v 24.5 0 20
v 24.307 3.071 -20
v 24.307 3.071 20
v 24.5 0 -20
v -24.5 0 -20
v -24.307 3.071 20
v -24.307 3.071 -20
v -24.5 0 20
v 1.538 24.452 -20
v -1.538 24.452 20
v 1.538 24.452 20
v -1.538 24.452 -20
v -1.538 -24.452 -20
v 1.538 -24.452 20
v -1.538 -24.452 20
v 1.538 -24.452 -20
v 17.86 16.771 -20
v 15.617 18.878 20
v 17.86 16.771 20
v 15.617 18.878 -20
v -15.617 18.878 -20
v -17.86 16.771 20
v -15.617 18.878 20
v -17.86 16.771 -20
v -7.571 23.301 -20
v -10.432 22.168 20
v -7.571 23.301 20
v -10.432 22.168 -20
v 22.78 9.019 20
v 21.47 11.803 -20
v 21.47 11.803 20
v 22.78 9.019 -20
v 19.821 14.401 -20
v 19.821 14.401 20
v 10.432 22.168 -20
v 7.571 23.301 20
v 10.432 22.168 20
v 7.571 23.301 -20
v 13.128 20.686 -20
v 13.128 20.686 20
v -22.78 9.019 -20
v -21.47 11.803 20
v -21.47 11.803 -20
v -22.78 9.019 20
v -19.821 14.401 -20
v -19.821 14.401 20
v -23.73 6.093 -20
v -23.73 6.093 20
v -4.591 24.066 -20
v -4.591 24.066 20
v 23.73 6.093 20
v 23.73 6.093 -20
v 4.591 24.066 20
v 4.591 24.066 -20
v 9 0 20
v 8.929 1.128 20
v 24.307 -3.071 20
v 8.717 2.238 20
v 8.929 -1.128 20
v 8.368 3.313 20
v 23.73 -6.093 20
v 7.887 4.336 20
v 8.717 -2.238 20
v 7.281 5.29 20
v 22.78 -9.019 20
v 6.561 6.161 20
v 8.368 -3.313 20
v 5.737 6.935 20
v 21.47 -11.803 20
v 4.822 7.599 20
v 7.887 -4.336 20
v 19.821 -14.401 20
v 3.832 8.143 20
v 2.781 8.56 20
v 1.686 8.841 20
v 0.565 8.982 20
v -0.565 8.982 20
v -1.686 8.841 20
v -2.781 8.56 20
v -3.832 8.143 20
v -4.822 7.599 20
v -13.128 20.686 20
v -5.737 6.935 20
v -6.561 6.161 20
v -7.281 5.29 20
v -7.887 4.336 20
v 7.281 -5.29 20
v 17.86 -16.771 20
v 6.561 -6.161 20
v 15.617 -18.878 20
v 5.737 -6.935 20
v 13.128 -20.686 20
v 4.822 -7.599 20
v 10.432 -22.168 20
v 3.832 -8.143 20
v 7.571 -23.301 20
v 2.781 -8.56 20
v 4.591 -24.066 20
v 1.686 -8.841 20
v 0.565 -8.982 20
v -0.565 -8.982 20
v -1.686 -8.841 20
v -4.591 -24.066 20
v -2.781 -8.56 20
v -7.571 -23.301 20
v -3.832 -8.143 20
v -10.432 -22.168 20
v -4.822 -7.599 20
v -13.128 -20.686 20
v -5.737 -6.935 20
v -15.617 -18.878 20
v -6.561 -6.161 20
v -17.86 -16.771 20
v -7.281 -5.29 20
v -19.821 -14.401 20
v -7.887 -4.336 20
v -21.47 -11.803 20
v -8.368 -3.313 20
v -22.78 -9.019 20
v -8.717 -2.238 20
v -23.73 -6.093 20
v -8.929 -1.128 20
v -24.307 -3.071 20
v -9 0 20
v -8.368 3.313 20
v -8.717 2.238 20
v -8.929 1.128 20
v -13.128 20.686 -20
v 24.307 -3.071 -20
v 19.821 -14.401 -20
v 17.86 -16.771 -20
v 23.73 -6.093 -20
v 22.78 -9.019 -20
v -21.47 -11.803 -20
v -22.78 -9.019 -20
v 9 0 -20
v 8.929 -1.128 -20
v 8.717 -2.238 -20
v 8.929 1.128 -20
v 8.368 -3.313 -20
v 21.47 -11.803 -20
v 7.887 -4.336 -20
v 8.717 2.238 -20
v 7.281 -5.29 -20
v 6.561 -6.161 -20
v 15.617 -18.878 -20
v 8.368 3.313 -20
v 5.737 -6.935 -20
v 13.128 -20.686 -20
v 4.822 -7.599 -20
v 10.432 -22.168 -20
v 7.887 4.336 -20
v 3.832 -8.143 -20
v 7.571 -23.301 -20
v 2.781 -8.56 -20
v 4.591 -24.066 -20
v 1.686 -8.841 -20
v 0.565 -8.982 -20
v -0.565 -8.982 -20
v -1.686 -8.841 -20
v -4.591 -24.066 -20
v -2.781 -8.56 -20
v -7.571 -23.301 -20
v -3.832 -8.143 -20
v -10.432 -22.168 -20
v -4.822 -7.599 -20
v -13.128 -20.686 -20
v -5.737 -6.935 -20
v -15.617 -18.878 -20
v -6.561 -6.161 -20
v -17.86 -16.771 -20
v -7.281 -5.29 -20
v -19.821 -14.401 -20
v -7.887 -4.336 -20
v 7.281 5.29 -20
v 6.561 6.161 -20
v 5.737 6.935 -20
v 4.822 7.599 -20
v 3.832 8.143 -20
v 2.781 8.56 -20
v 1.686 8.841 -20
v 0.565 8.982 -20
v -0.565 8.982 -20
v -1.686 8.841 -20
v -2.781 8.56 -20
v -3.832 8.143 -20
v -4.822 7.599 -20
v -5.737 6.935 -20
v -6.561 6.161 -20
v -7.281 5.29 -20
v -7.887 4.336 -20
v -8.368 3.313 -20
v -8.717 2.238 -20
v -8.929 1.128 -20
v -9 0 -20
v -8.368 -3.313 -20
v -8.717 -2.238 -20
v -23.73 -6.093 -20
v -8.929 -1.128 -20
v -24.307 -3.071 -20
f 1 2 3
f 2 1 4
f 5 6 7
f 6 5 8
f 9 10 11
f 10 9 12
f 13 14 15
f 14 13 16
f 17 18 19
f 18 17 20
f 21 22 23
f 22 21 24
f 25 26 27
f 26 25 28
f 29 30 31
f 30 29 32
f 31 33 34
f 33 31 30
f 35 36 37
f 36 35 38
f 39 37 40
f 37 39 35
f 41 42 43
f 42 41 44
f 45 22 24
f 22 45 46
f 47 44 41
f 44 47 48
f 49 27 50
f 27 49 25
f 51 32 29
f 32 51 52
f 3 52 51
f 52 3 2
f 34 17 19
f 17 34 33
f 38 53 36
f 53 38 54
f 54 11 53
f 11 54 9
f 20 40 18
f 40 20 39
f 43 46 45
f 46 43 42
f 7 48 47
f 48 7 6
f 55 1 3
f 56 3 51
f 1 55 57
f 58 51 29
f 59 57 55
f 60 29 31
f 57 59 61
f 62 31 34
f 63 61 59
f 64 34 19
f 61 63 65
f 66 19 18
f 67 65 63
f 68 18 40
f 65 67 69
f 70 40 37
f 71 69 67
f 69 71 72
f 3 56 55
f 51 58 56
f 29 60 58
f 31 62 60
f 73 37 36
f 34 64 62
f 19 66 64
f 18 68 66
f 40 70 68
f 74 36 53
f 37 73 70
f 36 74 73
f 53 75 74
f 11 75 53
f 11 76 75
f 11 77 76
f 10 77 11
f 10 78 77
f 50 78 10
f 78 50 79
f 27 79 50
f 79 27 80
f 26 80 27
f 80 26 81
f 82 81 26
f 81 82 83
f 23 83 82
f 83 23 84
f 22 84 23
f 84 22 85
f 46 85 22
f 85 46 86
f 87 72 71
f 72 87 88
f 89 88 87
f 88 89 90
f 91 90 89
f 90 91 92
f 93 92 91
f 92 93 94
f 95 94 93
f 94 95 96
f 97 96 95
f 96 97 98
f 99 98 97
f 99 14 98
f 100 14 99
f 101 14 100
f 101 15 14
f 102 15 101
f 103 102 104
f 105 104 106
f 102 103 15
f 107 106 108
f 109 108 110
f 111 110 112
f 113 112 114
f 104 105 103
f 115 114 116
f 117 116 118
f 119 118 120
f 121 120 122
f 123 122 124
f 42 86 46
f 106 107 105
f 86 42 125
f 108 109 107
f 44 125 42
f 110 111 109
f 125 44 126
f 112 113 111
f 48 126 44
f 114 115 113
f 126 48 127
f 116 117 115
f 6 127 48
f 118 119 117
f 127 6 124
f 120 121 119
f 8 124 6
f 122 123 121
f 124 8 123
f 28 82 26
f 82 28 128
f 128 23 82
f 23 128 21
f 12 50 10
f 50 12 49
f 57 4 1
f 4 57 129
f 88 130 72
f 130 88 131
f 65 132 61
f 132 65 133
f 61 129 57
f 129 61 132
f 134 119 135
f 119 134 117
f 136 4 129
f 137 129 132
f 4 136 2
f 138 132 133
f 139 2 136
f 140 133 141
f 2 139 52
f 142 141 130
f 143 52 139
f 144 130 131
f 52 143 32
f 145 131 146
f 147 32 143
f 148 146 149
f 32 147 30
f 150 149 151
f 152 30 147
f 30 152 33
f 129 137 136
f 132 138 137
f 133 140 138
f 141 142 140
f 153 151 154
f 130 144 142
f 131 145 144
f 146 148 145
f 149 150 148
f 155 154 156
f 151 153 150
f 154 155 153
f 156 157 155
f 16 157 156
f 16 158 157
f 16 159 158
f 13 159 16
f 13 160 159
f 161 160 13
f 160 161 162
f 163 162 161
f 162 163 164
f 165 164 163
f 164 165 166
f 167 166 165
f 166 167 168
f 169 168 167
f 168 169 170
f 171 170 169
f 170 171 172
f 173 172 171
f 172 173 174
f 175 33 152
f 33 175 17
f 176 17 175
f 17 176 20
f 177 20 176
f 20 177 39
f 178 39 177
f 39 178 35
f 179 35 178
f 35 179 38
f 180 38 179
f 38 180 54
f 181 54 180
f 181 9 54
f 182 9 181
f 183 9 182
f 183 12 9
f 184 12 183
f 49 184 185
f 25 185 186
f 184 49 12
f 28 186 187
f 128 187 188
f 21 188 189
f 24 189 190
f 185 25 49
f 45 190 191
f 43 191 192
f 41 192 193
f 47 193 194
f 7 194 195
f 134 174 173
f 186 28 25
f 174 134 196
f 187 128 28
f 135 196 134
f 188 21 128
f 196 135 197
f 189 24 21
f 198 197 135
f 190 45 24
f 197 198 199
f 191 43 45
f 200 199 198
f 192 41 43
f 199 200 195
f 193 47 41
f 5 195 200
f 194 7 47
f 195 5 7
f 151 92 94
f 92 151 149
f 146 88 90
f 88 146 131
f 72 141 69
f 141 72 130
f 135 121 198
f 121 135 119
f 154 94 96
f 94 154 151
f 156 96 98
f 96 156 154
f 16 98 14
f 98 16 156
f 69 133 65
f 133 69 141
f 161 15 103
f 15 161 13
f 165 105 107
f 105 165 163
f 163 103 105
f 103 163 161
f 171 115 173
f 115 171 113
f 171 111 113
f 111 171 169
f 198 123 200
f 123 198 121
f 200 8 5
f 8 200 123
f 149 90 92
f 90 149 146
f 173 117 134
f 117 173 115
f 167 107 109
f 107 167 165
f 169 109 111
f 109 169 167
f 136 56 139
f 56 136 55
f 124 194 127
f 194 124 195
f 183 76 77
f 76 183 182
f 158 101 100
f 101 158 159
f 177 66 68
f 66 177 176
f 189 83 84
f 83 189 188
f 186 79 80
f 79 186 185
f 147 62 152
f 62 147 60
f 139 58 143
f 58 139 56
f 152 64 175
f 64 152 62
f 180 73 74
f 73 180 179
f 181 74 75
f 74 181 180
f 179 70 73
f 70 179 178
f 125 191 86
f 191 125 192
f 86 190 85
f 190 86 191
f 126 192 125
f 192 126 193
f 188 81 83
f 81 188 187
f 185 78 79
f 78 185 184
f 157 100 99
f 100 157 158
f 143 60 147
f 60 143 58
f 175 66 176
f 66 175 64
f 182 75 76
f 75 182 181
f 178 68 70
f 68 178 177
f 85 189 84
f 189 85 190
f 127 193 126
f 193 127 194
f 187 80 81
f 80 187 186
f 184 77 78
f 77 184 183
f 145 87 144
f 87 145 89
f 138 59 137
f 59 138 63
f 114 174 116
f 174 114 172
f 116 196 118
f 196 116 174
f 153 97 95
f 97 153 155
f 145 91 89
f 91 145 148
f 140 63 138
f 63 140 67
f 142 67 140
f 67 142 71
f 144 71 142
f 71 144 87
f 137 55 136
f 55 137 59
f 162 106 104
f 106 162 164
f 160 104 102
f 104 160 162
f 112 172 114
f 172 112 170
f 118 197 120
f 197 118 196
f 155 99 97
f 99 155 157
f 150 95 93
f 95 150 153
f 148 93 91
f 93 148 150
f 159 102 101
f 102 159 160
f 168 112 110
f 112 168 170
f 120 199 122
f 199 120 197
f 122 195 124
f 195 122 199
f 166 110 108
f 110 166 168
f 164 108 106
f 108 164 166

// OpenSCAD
$fn = 50;


difference() {
	union() {
		translate(v = [0, 0, -20.0000000000]) {
			cylinder(h = 40, r = 24.5000000000);
		}
	}
	union() {
		translate(v = [0, 0, -100.0000000000]) {
			cylinder(h = 200, r = 9);
		}
	}
}
